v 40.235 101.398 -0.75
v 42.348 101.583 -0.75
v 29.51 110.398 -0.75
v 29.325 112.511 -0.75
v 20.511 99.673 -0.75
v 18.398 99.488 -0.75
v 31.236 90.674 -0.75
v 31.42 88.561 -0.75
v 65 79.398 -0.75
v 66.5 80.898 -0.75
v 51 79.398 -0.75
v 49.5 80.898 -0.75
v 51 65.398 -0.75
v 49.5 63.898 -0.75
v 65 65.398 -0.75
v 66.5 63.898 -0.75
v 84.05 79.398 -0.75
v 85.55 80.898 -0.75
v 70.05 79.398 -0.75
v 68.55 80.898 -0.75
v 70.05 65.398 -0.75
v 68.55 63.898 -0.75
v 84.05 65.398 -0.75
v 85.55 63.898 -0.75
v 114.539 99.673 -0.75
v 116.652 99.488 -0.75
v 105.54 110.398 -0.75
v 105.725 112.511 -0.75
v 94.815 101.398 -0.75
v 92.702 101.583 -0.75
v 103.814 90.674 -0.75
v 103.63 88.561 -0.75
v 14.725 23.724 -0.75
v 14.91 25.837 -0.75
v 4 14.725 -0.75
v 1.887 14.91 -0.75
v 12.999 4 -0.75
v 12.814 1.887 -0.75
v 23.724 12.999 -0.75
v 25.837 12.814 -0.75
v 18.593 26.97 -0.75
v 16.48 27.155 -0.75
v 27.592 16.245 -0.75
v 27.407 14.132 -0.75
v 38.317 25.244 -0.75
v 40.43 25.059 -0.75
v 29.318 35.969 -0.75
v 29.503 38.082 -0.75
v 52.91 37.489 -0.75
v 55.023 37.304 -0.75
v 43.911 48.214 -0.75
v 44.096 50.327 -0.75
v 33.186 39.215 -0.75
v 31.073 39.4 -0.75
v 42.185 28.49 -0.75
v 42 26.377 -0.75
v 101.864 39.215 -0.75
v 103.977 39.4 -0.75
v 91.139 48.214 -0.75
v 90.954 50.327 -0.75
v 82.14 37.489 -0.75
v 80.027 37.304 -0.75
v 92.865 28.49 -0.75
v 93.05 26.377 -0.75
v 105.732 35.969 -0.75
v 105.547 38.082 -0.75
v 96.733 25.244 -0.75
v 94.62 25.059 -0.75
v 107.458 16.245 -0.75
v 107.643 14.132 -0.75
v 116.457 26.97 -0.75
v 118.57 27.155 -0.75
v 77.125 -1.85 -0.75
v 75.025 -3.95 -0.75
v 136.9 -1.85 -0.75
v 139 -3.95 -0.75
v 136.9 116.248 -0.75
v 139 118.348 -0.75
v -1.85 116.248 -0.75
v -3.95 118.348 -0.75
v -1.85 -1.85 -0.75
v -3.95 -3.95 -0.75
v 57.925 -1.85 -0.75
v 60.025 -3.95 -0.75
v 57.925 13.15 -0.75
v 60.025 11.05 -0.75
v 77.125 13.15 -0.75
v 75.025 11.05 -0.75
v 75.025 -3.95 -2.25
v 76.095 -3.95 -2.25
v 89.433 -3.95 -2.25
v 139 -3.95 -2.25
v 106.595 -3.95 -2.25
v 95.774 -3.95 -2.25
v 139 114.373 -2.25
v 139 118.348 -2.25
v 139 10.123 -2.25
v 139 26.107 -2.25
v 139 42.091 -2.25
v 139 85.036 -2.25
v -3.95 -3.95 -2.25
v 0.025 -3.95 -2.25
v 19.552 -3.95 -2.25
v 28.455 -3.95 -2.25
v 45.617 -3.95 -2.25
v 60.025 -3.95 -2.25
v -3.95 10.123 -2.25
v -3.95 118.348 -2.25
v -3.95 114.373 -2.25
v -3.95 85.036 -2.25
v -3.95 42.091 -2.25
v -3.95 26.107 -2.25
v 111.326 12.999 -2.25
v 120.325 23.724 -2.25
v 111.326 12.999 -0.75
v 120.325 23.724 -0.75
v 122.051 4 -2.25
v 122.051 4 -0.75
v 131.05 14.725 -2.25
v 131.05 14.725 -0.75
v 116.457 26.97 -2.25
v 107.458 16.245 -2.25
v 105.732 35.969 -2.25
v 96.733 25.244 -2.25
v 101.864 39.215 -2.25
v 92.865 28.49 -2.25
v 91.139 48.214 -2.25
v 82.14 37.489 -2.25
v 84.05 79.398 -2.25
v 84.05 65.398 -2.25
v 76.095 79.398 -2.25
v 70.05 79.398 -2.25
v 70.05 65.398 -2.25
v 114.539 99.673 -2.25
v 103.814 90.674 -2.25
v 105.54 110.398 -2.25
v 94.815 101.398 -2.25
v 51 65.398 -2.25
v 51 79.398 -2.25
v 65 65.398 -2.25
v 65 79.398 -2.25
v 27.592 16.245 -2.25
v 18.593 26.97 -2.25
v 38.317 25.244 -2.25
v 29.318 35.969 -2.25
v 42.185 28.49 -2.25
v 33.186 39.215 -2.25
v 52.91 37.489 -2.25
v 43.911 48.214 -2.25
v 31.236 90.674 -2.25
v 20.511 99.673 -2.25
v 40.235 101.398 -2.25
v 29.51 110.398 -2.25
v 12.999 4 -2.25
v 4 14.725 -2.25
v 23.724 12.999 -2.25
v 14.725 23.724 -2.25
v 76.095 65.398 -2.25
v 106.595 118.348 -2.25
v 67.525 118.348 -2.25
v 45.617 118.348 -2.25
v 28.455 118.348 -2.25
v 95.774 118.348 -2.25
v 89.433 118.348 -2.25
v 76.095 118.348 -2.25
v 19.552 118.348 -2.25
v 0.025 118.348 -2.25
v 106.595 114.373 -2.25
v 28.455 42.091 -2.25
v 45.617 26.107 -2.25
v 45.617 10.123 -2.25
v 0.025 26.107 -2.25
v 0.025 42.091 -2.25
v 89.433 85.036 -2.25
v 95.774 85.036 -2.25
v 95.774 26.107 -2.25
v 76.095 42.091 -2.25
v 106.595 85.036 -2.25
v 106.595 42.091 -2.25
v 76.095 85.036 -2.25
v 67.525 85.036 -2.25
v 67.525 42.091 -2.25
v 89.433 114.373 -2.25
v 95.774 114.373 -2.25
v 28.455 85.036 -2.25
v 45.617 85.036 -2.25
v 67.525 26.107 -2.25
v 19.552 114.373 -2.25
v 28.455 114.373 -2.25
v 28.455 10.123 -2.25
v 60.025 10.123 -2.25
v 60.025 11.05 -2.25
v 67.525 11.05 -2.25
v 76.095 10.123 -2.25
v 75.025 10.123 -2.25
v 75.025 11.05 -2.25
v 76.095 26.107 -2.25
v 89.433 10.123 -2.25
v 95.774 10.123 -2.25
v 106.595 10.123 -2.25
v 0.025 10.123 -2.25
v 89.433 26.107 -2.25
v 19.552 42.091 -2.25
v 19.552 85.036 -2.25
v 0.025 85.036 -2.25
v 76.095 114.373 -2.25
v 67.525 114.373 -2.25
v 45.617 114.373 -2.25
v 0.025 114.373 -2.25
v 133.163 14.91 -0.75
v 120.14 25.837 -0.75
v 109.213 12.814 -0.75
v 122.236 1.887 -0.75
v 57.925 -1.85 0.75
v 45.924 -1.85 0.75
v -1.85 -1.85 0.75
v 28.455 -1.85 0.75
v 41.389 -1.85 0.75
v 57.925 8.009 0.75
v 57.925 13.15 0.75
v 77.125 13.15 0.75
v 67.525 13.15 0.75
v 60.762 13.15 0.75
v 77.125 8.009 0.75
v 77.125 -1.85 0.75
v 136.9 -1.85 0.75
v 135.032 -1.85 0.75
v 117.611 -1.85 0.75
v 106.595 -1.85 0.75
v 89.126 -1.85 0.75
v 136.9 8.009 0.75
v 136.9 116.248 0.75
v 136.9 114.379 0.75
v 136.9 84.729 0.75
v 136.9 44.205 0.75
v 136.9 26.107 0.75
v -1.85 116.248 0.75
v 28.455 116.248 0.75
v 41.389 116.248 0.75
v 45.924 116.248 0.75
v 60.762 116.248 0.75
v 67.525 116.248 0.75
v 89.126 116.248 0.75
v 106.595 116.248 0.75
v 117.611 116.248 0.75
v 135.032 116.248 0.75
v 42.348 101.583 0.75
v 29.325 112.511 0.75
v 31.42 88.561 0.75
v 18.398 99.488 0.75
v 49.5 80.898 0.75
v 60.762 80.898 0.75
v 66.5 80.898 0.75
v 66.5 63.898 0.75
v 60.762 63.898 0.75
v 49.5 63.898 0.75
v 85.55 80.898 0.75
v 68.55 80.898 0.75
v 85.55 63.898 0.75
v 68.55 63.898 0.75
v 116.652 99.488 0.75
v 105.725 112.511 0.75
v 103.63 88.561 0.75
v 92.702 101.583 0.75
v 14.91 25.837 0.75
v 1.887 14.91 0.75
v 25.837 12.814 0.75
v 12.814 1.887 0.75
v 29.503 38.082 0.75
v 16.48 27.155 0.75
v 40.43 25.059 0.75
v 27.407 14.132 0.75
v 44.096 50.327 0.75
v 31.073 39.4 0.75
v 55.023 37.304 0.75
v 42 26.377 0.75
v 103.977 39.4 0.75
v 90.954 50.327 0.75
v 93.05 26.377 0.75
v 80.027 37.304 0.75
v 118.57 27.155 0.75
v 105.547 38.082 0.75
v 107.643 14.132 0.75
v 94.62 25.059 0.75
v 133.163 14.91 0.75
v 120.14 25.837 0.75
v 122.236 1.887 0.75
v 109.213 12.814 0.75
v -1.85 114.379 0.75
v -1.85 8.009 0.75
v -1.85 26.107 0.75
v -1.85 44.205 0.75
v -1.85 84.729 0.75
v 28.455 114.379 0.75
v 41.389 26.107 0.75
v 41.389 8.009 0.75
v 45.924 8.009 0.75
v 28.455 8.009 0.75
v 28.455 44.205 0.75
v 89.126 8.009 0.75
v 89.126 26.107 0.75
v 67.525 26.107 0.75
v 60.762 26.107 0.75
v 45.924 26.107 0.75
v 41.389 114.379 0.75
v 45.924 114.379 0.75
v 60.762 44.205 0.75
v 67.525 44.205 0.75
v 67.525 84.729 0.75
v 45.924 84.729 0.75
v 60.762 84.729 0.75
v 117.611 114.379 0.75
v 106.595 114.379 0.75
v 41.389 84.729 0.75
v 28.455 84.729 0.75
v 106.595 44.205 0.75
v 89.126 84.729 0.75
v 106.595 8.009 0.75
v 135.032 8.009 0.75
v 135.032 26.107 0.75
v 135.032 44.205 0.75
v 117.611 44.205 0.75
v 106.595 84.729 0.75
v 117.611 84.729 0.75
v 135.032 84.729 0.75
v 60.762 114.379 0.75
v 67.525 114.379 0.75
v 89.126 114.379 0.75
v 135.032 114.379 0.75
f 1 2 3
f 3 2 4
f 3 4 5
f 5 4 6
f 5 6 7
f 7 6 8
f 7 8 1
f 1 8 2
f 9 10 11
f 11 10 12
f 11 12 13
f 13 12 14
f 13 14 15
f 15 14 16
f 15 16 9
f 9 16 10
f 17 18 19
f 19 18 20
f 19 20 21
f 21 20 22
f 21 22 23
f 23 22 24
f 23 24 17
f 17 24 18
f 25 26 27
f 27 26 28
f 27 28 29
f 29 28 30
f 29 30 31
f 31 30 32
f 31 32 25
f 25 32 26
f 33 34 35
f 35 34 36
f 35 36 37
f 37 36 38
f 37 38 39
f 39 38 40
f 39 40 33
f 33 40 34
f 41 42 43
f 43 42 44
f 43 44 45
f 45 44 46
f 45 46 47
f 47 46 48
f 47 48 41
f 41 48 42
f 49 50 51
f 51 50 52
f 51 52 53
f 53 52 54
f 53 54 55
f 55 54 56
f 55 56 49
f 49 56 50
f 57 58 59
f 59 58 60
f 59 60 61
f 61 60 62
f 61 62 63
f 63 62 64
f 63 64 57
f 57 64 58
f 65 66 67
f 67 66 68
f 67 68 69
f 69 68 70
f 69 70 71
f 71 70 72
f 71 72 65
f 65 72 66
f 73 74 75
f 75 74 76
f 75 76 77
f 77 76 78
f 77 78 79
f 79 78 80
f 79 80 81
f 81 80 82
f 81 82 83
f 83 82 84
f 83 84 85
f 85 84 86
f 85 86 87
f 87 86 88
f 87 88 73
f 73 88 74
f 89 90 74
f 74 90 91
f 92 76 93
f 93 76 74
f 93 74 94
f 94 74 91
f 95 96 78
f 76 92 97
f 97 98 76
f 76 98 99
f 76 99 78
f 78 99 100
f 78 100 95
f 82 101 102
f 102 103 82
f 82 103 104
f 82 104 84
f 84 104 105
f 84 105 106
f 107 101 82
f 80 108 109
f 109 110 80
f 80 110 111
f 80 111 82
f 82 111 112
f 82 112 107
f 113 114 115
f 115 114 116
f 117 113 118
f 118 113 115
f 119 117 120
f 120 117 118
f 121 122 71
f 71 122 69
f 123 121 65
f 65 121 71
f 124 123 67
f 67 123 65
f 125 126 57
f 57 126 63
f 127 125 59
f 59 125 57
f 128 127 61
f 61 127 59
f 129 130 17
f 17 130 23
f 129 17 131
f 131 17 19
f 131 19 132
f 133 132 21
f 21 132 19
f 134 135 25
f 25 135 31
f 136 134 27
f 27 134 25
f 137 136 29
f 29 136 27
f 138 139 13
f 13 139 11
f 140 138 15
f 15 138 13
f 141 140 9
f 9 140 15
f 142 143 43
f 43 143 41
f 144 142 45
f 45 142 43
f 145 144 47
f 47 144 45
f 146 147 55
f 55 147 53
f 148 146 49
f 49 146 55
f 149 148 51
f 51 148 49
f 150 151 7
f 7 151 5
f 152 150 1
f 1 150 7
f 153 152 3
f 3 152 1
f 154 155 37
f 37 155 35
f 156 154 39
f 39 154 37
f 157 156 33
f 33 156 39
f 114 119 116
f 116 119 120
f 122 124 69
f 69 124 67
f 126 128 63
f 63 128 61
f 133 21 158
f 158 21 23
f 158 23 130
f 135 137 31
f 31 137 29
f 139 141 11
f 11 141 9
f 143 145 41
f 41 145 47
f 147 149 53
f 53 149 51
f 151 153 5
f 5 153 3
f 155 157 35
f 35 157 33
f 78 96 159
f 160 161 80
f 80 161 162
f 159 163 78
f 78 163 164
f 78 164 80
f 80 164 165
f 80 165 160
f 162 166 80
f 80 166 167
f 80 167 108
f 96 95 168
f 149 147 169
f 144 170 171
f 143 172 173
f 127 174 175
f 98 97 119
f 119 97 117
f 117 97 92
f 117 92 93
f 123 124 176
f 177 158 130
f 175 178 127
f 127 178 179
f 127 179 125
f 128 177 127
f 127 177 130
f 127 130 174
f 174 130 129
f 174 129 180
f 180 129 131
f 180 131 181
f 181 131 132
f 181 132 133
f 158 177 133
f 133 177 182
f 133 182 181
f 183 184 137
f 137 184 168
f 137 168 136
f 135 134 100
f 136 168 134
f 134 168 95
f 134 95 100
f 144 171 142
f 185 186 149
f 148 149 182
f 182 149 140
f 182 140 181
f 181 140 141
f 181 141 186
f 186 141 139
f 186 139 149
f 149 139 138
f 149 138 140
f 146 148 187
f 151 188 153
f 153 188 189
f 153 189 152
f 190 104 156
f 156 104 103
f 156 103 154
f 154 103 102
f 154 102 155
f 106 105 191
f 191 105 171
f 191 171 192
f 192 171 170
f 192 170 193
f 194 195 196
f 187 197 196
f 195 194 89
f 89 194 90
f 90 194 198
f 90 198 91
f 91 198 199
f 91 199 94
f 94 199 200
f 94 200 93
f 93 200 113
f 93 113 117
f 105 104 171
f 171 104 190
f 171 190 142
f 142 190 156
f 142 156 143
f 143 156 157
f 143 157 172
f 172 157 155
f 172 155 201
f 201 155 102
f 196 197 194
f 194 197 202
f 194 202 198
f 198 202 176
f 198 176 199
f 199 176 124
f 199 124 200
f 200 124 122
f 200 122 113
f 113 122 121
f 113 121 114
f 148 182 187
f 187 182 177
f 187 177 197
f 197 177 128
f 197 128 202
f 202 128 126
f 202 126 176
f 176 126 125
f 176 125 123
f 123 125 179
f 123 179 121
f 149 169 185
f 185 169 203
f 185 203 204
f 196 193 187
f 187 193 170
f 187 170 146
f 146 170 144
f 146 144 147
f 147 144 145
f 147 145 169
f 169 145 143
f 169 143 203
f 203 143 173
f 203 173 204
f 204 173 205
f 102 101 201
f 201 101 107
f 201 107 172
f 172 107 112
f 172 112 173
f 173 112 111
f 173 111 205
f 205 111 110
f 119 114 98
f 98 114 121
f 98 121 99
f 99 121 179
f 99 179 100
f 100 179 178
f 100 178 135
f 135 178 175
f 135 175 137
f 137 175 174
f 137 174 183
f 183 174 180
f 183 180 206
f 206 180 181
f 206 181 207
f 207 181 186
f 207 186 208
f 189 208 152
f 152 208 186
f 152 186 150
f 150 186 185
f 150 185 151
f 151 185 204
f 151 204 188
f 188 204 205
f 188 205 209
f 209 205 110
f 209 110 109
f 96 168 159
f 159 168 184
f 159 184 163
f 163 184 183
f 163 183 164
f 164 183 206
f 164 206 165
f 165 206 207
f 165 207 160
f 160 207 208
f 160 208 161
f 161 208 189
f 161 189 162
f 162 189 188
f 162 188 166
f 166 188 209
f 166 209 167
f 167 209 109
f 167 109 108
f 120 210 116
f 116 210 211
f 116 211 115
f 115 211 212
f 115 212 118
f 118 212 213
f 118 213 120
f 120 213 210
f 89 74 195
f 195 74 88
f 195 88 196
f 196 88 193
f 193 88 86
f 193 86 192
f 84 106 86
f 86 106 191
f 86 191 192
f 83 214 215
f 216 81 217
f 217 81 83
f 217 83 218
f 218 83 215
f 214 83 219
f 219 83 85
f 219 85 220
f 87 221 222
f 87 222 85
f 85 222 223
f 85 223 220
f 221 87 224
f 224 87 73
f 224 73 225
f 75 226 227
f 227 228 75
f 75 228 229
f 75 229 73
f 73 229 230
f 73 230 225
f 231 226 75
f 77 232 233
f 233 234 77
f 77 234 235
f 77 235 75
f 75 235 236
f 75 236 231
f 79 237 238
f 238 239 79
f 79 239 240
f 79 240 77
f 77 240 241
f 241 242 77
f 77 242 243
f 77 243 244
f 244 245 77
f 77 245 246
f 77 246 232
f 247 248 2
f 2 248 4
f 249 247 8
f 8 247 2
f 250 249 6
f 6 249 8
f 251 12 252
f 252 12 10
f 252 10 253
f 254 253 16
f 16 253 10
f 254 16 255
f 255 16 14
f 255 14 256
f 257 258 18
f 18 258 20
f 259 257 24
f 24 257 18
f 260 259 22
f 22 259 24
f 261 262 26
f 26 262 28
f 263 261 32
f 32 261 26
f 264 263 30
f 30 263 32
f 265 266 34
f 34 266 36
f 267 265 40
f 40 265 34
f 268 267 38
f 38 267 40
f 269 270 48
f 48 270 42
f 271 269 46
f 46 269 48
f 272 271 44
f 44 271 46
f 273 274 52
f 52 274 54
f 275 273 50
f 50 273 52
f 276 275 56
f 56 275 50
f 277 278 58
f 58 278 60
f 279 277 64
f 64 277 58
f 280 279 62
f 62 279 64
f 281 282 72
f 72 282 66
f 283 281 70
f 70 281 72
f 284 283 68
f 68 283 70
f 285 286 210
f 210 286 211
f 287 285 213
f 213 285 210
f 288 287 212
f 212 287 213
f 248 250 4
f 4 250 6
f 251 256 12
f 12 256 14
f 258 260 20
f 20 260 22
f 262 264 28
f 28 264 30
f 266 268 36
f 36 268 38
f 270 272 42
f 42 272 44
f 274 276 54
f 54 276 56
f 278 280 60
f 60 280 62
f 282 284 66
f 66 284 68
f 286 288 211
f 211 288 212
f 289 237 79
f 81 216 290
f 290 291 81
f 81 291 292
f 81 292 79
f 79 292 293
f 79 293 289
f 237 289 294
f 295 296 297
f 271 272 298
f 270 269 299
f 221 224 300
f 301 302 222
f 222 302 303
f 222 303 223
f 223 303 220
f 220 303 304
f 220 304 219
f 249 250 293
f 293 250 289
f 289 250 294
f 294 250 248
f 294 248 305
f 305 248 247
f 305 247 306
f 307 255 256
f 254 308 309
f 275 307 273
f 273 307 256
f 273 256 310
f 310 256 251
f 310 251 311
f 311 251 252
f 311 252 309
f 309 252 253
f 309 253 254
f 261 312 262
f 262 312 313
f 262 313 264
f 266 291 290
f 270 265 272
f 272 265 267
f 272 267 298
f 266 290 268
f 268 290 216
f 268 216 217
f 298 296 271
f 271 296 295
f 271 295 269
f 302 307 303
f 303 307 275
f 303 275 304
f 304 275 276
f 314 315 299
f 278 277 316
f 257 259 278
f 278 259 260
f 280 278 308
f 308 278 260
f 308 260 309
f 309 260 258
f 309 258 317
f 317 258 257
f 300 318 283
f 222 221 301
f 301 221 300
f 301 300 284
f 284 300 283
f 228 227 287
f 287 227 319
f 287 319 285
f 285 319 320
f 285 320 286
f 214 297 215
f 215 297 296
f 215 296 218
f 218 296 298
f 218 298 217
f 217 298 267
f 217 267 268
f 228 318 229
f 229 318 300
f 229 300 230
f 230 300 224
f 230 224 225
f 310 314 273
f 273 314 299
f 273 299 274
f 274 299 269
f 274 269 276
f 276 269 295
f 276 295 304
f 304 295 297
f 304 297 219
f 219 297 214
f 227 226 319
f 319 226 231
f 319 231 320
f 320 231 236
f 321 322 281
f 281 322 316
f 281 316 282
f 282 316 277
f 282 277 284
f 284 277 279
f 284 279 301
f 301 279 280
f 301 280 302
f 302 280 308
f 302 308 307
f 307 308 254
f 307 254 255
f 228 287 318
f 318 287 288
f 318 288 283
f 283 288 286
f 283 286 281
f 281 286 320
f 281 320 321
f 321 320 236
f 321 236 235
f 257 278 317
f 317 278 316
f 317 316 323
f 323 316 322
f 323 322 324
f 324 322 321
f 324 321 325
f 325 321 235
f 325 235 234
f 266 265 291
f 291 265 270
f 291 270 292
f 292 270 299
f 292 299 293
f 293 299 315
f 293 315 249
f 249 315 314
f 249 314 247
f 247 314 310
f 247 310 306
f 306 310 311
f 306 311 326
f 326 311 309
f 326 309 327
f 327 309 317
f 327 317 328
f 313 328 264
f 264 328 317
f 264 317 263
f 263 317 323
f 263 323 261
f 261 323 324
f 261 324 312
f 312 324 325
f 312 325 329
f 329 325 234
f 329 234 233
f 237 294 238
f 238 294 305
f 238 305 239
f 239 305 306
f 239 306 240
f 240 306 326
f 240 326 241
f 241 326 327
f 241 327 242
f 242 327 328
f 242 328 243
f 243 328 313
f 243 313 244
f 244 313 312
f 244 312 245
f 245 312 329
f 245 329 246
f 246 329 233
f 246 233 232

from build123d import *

# Parameters (mm, degrees)
MODEL_W                    = 142.95
MODEL_H                    = 122.297505408
MODEL_W_2                  = 14
MODEL_H_2                  = 14
SALIENTE_EXTRUIR1_DEPTH    = 0.75
CROQUIS2_W                 = 15
CROQUIS2_H                 = 30
CORTAR_EXTRUIR1_DEPTH      = 183.563364442
CROQUIS3_W                 = 17
CROQUIS3_H                 = 17
SALIENTE_EXTRUIR2_DEPTH    = 1.5
S_LIDO_MOVER_COPIAR1_ANGLE = 180


with BuildPart() as part:
    # Model → Saliente-Extruir1 (new, symmetric)
    with BuildSketch(Plane.XY):
        with Locations((67.525, 57.198752704)):
            Rectangle(MODEL_W, MODEL_H)
        with Locations((58, 42)):
            Rectangle(MODEL_W_2, MODEL_H_2, mode=Mode.SUBTRACT)
        Polygon((18.593146641, 87.427779239), (29.317768845, 78.428752704), (38.316795381, 89.153374907), (27.592173177, 98.152401443), align=None, mode=Mode.SUBTRACT)
        Polygon((103.814404332, 23.723648739), (114.539026536, 14.724622204), (105.54, 4), (94.815377796, 12.999026536), align=None, mode=Mode.SUBTRACT)
        Polygon((33.186293283, 75.182675275), (43.910915486, 66.183648739), (52.909942022, 76.908270943), (42.185319818, 85.907297479), align=None, mode=Mode.SUBTRACT)
        Polygon((20.510973464, 14.724622204), (29.51, 4), (40.234622204, 12.999026536), (31.235595668, 23.723648739), align=None, mode=Mode.SUBTRACT)
        with Locations((77.05, 42)):
            Rectangle(MODEL_W_2, MODEL_H_2, mode=Mode.SUBTRACT)
        Polygon((92.864680182, 85.907297479), (101.863706717, 75.182675275), (91.139084514, 66.183648739), (82.140057978, 76.908270943), align=None, mode=Mode.SUBTRACT)
        Polygon((107.457826823, 98.152401443), (116.456853359, 87.427779239), (105.732231155, 78.428752704), (96.733204619, 89.153374907), align=None, mode=Mode.SUBTRACT)
        Polygon((4, 99.672883204), (14.724622204, 90.673856668), (23.723648739, 101.398478872), (12.999026536, 110.397505408), align=None, mode=Mode.SUBTRACT)
        Polygon((120.325377796, 90.673856668), (111.326351261, 101.398478872), (122.050973464, 110.397505408), (131.05, 99.672883204), align=None, mode=Mode.SUBTRACT)
    extrude(amount=SALIENTE_EXTRUIR1_DEPTH, both=True)

    # Croquis2 → Cortar-Extruir1 (cut, through all)
    with BuildSketch(Plane.XY.offset(0.75)):
        with Locations((67.525, 118.347505408)):
            Rectangle(CROQUIS2_W, CROQUIS2_H)
    extrude(amount=-CORTAR_EXTRUIR1_DEPTH, mode=Mode.SUBTRACT)

    # Croquis3 → Saliente-Extruir2 (add)
    with BuildSketch(Plane(origin=(0, 0, -0.75), x_dir=(-1, 0, 0), z_dir=(0, 0, -1))):
        Polygon((-57.925, 101.247505408), (-77.125, 101.247505408), (-77.125, 116.247505408), (-136.9, 116.247505408), (-136.9, -1.85), (1.85, -1.85), (1.85, 116.247505408), (-57.925, 116.247505408), align=None)
        Polygon((-29.32511475, 1.886751921), (-18.397725385, 14.909507454), (-31.420480918, 25.836896818), (-42.347870283, 12.814141285), align=None, mode=Mode.SUBTRACT)
        with Locations((-58, 42)):
            Rectangle(CROQUIS3_W, CROQUIS3_H, mode=Mode.SUBTRACT)
        with Locations((-77.05, 42)):
            Rectangle(CROQUIS3_W, CROQUIS3_H, mode=Mode.SUBTRACT)
        Polygon((-105.72488525, 1.886751921), (-92.702129717, 12.814141285), (-103.629519082, 25.836896818), (-116.652274615, 14.909507454), align=None, mode=Mode.SUBTRACT)
        Polygon((-1.886751921, 99.487997954), (-12.814141285, 112.510753487), (-25.836896818, 101.583364122), (-14.909507454, 88.560608589), align=None, mode=Mode.SUBTRACT)
        Polygon((-16.479898562, 87.242893989), (-27.407287927, 100.265649522), (-40.43004346, 89.338260158), (-29.502654095, 76.315504625), align=None, mode=Mode.SUBTRACT)
        Polygon((-31.073045204, 74.997790025), (-42.000434568, 88.020545558), (-55.023190101, 77.093156193), (-44.095800737, 64.07040066), align=None, mode=Mode.SUBTRACT)
        Polygon((-90.954199263, 64.07040066), (-80.026809899, 77.093156193), (-93.049565432, 88.020545558), (-103.976954796, 74.997790025), align=None, mode=Mode.SUBTRACT)
        Polygon((-105.547345905, 76.315504625), (-94.61995654, 89.338260158), (-107.642712073, 100.265649522), (-118.570101438, 87.242893989), align=None, mode=Mode.SUBTRACT)
        Polygon((-120.140492546, 88.560608589), (-109.213103182, 101.583364122), (-122.235858715, 112.510753487), (-133.163248079, 99.487997954), align=None, mode=Mode.SUBTRACT)
    extrude(amount=SALIENTE_EXTRUIR2_DEPTH)


with BuildPart() as part_1:
    # Sólido-Mover/Copiar1: moved
    add(part.part.rotate(Axis((0, 57.198752704, -0.75), (1, 0, 0)), S_LIDO_MOVER_COPIAR1_ANGLE))


solid = part_1.part
